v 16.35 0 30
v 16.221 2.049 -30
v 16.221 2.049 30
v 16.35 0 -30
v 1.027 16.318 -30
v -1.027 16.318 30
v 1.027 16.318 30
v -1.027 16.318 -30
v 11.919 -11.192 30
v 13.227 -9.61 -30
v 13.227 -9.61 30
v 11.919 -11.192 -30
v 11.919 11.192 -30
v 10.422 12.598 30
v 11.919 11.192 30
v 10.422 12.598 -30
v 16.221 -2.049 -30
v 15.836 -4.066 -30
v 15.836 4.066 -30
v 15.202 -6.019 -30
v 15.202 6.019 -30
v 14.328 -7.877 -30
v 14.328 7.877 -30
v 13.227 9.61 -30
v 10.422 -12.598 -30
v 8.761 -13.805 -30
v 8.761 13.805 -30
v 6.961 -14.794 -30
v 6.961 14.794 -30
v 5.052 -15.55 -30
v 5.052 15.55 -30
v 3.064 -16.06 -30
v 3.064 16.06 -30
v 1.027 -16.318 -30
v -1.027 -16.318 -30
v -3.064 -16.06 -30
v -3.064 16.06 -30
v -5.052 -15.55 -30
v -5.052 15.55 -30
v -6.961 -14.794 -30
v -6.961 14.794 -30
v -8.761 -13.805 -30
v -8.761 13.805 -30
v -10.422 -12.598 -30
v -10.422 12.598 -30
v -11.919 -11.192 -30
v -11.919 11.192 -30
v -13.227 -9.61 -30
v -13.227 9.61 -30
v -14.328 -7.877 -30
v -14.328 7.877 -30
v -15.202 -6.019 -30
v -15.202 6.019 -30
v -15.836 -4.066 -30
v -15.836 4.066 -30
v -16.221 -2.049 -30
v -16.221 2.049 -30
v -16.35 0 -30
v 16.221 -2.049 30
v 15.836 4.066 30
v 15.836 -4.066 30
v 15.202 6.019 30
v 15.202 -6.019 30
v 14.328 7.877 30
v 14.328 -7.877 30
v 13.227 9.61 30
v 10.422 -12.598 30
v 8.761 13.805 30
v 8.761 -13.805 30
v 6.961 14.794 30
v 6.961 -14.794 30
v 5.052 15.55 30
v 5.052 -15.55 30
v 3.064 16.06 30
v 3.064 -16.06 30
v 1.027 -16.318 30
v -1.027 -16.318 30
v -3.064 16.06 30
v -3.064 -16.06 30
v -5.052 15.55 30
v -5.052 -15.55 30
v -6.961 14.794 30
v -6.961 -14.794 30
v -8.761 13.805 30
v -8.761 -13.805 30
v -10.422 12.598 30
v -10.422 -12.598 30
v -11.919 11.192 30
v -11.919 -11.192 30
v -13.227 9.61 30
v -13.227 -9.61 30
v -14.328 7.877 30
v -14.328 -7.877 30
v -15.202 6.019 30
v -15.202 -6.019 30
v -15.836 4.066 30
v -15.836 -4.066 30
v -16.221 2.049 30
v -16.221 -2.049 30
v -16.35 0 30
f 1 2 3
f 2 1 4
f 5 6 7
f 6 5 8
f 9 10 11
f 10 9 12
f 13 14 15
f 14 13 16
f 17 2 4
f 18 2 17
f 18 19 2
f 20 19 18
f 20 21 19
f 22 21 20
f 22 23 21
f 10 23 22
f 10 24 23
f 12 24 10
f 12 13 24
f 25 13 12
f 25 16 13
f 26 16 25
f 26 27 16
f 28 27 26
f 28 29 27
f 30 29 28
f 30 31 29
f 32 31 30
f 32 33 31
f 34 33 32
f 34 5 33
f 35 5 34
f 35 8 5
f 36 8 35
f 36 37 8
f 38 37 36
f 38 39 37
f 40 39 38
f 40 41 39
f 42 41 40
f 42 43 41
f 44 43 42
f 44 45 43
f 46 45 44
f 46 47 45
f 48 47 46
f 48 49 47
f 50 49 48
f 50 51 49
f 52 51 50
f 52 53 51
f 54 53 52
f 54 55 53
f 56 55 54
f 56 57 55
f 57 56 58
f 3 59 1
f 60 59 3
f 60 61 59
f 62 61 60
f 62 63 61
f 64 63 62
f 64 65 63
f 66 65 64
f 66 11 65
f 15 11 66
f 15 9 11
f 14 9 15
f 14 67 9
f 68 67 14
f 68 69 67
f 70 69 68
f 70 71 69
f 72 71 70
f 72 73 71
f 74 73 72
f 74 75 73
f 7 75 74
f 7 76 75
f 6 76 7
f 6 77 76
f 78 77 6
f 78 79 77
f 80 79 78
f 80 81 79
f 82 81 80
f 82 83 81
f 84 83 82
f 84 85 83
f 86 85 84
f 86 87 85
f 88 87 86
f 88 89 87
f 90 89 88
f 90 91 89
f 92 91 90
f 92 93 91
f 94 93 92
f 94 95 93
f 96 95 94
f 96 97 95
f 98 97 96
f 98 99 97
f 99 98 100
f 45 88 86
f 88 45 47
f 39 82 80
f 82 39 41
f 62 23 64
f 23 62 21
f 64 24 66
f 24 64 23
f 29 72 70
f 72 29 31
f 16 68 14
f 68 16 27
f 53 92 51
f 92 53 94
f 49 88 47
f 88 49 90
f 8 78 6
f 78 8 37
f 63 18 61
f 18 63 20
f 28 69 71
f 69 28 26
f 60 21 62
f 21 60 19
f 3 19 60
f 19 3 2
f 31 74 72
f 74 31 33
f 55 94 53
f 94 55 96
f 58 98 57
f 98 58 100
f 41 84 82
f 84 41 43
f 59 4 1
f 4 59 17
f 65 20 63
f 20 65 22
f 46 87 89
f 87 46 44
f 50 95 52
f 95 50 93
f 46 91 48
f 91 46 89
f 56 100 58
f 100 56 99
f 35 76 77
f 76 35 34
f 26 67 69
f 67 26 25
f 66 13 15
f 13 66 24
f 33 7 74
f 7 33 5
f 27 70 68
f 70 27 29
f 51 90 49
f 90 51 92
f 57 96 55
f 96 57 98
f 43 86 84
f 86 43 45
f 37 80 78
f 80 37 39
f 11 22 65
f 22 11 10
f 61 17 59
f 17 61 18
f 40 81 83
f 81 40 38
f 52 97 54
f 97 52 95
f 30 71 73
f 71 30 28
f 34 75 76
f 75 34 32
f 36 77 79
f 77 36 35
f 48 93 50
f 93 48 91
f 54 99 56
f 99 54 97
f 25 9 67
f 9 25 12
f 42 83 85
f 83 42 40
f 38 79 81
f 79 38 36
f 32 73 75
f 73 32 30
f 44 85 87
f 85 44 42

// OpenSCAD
$fn = 50;


difference() {
	union() {
		translate(v = [0, 0, -30.0000000000]) {
			cylinder(h = 60, r = 16.3500000000);
		}
	}
	union() {
		translate(v = [0, 0, -100.0000000000]) {
			cylinder(h = 200, r = 0);
		}
	}
}
